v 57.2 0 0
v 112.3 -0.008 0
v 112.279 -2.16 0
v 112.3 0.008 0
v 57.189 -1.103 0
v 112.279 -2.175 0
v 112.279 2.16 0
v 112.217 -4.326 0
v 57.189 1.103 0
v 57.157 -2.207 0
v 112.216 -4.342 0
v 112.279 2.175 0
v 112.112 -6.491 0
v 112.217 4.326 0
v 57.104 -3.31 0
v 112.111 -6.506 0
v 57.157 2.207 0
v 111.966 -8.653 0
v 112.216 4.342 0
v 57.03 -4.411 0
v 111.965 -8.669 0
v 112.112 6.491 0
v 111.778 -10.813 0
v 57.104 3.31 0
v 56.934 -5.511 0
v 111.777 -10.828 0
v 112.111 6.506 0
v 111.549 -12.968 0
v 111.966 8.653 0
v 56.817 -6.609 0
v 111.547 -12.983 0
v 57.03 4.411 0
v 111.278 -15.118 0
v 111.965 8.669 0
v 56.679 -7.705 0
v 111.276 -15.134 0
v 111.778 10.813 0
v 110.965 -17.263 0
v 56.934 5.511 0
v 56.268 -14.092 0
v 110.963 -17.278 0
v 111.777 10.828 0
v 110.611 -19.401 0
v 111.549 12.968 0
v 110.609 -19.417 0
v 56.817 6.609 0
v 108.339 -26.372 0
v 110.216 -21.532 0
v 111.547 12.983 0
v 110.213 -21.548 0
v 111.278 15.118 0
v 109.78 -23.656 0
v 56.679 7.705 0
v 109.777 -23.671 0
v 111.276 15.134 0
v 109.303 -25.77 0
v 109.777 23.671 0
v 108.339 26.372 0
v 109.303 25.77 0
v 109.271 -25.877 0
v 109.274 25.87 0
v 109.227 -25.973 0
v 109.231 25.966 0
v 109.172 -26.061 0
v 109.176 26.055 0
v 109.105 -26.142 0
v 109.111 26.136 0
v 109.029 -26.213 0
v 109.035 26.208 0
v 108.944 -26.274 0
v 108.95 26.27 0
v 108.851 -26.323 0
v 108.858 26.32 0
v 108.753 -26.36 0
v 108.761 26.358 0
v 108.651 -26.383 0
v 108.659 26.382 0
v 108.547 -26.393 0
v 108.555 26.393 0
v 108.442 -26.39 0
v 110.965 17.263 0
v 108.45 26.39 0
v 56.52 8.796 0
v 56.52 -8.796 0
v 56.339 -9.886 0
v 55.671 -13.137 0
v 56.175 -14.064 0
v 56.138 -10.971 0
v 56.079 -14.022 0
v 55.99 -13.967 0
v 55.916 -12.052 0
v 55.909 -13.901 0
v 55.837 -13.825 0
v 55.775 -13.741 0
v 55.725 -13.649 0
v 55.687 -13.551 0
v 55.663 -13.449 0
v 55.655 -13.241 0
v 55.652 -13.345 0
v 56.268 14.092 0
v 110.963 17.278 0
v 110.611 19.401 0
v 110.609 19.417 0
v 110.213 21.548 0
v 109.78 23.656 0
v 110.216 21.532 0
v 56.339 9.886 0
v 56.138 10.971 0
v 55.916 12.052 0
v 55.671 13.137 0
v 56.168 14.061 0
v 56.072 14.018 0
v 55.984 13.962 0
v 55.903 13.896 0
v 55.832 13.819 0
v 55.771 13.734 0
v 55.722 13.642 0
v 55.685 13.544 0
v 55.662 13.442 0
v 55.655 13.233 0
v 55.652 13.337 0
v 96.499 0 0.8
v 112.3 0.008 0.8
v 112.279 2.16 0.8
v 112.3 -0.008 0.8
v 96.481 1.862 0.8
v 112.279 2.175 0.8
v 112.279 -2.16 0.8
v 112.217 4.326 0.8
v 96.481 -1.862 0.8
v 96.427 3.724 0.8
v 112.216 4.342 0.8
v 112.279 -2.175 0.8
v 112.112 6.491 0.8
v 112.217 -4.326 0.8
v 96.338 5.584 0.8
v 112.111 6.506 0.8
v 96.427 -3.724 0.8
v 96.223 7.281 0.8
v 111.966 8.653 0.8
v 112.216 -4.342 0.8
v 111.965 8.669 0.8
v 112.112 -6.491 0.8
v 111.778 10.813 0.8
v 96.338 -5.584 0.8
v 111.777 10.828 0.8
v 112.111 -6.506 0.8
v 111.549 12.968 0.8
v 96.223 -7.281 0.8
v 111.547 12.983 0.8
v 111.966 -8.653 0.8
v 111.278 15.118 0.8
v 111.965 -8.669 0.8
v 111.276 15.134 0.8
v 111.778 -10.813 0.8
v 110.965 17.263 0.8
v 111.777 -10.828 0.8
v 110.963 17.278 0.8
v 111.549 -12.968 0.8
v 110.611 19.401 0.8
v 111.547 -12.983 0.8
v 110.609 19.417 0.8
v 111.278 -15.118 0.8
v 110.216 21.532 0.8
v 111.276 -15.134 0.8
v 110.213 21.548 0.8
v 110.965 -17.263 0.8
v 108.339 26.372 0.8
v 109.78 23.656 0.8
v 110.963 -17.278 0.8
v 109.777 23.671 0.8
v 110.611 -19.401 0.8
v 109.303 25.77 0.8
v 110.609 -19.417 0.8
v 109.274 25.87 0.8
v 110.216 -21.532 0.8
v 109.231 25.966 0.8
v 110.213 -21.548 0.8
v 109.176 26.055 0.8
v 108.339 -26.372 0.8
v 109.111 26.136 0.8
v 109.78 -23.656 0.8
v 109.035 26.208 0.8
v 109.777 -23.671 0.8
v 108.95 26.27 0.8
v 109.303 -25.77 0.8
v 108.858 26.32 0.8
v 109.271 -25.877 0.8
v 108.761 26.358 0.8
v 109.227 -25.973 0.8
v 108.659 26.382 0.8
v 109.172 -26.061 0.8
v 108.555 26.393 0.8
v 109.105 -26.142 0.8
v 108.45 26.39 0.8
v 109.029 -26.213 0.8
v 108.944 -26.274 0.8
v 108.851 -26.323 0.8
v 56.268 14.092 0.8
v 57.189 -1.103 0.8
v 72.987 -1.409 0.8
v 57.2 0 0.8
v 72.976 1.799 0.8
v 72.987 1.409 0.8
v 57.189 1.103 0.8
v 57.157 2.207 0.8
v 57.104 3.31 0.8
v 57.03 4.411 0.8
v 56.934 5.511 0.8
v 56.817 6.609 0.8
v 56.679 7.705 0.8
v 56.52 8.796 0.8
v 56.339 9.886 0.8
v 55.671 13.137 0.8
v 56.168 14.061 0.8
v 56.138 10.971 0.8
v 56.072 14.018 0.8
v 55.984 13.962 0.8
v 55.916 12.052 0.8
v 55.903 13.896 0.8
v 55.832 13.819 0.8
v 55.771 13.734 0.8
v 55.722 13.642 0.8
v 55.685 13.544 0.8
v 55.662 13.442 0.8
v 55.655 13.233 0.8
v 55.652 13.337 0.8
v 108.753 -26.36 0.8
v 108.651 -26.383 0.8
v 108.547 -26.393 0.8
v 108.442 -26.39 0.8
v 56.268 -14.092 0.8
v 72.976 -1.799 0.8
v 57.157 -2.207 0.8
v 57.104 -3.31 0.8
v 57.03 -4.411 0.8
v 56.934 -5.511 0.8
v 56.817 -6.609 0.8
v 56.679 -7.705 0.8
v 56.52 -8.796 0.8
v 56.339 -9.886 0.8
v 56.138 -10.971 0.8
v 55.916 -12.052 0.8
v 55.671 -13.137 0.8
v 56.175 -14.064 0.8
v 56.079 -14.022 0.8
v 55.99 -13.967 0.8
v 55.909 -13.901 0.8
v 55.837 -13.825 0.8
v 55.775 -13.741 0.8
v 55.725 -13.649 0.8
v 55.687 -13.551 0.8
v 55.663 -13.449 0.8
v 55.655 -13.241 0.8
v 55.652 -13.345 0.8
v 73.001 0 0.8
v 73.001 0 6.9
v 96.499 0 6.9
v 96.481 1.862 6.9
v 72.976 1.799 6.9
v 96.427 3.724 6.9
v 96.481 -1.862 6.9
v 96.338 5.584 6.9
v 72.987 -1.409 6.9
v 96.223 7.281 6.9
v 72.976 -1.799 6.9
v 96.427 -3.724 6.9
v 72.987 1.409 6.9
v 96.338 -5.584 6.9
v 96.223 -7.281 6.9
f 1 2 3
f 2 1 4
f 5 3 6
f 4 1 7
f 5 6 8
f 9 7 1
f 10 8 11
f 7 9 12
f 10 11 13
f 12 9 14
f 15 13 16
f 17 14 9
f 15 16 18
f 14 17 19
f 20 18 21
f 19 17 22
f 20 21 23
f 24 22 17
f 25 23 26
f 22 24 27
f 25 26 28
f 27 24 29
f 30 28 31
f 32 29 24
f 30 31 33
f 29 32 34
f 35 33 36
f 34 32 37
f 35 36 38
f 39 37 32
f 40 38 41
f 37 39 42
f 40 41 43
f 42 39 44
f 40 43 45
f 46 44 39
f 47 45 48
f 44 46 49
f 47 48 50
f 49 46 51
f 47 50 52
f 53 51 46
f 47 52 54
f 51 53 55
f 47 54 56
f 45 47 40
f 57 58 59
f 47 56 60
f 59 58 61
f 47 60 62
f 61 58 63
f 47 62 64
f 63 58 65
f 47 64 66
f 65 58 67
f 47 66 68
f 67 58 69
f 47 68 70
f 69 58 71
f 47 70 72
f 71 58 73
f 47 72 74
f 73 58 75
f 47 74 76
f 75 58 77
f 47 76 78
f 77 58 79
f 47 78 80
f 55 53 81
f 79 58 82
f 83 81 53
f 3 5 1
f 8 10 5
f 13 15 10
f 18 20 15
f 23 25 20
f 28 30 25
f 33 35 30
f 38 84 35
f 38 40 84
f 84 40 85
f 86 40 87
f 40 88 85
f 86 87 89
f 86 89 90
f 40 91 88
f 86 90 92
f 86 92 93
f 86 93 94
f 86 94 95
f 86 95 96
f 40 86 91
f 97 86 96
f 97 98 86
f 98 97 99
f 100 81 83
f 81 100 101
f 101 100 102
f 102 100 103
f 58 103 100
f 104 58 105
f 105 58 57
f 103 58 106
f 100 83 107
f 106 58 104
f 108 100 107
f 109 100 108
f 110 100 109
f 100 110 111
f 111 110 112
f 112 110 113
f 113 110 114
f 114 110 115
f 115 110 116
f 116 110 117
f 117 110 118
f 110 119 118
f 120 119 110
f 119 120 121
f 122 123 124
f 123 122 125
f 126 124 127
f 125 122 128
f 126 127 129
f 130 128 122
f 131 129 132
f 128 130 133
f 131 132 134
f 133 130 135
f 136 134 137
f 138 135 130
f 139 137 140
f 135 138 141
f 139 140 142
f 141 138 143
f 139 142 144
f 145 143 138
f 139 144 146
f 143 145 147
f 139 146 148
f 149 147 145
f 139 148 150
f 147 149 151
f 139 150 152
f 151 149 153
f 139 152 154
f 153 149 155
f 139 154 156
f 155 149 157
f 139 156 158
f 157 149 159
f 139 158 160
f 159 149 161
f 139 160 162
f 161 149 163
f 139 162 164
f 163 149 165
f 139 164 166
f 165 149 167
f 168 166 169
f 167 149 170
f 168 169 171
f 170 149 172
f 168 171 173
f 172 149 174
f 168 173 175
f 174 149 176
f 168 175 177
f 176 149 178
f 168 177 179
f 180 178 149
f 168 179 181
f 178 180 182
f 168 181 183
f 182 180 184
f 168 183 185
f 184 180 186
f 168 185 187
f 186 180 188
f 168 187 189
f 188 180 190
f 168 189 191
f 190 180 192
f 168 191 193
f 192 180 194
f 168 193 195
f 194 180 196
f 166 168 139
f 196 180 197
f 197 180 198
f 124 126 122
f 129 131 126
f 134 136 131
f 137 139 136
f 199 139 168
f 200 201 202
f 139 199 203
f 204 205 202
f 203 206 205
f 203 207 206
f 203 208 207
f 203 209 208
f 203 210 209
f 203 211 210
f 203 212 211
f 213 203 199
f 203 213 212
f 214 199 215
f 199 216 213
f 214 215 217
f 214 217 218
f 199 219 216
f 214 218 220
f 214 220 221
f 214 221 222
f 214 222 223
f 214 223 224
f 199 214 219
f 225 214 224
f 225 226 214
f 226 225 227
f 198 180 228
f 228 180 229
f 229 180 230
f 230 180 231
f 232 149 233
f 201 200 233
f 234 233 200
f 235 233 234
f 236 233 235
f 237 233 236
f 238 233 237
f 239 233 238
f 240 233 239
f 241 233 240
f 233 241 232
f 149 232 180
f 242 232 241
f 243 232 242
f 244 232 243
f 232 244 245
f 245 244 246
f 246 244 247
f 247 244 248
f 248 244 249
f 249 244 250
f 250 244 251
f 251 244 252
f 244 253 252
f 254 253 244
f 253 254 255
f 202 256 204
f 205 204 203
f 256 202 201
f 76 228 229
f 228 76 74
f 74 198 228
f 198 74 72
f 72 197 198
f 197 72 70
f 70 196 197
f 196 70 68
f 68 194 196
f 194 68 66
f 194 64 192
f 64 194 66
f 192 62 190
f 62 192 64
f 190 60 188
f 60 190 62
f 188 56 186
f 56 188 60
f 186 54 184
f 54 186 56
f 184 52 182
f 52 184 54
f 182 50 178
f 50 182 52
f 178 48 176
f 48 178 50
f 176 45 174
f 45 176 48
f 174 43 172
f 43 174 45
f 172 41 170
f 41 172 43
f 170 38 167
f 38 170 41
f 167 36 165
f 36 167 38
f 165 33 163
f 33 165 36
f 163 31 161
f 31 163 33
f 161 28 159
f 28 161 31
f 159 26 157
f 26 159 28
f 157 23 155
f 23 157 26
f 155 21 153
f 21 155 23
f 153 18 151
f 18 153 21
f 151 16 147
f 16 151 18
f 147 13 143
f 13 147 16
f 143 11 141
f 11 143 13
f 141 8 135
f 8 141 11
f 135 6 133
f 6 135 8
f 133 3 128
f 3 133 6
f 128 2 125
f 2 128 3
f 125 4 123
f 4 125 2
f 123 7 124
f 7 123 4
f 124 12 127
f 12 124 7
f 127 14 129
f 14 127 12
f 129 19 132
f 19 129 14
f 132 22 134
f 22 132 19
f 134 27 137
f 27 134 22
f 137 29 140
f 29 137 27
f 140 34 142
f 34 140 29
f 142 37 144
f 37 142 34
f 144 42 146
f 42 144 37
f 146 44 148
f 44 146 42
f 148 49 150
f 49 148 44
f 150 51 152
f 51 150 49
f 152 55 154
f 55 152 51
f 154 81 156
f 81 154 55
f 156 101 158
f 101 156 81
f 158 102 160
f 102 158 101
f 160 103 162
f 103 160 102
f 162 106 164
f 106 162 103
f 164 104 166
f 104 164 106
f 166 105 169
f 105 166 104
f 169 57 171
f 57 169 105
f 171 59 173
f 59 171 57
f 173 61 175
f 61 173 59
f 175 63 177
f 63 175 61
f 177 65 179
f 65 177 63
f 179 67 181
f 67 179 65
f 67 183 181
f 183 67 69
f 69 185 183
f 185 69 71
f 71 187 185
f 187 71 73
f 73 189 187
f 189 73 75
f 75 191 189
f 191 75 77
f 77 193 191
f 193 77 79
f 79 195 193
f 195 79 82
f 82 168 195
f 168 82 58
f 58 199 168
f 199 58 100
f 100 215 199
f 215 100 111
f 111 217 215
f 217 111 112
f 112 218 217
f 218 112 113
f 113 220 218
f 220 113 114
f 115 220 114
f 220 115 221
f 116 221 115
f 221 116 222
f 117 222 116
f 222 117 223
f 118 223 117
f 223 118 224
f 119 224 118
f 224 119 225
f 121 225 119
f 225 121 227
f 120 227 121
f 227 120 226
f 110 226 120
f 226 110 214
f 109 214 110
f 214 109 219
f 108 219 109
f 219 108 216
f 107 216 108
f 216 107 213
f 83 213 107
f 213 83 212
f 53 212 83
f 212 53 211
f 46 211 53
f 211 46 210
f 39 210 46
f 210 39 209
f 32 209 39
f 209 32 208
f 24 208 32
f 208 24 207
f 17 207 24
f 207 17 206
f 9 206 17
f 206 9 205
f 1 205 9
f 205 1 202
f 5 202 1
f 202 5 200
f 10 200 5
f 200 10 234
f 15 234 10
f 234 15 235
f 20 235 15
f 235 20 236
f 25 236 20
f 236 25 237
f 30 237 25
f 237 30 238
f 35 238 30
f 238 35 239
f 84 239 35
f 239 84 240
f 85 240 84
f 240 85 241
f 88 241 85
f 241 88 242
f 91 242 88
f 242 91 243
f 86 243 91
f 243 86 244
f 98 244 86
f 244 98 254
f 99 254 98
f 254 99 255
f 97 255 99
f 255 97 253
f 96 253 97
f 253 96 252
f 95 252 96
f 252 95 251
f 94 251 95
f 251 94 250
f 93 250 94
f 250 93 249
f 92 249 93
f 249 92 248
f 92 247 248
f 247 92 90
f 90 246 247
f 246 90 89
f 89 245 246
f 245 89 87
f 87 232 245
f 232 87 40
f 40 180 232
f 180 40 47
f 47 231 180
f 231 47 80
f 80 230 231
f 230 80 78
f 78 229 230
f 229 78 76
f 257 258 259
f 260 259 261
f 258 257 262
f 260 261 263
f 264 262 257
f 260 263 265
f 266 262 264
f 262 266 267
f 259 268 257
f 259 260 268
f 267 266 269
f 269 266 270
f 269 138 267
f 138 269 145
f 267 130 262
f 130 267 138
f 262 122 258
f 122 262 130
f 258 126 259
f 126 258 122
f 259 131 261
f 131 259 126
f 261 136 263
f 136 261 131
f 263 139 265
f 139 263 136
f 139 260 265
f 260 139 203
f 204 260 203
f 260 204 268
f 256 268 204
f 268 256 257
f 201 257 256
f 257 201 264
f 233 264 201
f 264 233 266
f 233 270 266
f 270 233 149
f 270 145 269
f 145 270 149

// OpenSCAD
// Gen-CZ — bobbin BASE (bottom flange + hub). Print x12, flange down. Wind 24 AWG x 250 t around
// the hub with the LID glued on (coil_lid.stl). Copper lives ONLY between the flanges (no proud winds).
include <parameters.scad>;
$fn = 48;
module sector_2d(r_in, r_out, ang) {
    polygon([
        for (a = [-ang/2 : ang/24 : ang/2]) [r_in*cos(a), r_in*sin(a)],
        for (a = [ang/2 : -ang/24 : -ang/2]) [r_out*cos(a), r_out*sin(a)]
    ]);
}
module footprint_2d() { offset(r=wall) sector_2d(coil_id_r, coil_od_r, span_deg); }
module hub_2d()       { offset(delta=-coil_core_inset) sector_2d(coil_id_r, coil_od_r, span_deg); }

union() {
    linear_extrude(flange_t) footprint_2d();
    translate([0, 0, flange_t - 0.01]) linear_extrude(former_web + 0.01) hub_2d();
}
